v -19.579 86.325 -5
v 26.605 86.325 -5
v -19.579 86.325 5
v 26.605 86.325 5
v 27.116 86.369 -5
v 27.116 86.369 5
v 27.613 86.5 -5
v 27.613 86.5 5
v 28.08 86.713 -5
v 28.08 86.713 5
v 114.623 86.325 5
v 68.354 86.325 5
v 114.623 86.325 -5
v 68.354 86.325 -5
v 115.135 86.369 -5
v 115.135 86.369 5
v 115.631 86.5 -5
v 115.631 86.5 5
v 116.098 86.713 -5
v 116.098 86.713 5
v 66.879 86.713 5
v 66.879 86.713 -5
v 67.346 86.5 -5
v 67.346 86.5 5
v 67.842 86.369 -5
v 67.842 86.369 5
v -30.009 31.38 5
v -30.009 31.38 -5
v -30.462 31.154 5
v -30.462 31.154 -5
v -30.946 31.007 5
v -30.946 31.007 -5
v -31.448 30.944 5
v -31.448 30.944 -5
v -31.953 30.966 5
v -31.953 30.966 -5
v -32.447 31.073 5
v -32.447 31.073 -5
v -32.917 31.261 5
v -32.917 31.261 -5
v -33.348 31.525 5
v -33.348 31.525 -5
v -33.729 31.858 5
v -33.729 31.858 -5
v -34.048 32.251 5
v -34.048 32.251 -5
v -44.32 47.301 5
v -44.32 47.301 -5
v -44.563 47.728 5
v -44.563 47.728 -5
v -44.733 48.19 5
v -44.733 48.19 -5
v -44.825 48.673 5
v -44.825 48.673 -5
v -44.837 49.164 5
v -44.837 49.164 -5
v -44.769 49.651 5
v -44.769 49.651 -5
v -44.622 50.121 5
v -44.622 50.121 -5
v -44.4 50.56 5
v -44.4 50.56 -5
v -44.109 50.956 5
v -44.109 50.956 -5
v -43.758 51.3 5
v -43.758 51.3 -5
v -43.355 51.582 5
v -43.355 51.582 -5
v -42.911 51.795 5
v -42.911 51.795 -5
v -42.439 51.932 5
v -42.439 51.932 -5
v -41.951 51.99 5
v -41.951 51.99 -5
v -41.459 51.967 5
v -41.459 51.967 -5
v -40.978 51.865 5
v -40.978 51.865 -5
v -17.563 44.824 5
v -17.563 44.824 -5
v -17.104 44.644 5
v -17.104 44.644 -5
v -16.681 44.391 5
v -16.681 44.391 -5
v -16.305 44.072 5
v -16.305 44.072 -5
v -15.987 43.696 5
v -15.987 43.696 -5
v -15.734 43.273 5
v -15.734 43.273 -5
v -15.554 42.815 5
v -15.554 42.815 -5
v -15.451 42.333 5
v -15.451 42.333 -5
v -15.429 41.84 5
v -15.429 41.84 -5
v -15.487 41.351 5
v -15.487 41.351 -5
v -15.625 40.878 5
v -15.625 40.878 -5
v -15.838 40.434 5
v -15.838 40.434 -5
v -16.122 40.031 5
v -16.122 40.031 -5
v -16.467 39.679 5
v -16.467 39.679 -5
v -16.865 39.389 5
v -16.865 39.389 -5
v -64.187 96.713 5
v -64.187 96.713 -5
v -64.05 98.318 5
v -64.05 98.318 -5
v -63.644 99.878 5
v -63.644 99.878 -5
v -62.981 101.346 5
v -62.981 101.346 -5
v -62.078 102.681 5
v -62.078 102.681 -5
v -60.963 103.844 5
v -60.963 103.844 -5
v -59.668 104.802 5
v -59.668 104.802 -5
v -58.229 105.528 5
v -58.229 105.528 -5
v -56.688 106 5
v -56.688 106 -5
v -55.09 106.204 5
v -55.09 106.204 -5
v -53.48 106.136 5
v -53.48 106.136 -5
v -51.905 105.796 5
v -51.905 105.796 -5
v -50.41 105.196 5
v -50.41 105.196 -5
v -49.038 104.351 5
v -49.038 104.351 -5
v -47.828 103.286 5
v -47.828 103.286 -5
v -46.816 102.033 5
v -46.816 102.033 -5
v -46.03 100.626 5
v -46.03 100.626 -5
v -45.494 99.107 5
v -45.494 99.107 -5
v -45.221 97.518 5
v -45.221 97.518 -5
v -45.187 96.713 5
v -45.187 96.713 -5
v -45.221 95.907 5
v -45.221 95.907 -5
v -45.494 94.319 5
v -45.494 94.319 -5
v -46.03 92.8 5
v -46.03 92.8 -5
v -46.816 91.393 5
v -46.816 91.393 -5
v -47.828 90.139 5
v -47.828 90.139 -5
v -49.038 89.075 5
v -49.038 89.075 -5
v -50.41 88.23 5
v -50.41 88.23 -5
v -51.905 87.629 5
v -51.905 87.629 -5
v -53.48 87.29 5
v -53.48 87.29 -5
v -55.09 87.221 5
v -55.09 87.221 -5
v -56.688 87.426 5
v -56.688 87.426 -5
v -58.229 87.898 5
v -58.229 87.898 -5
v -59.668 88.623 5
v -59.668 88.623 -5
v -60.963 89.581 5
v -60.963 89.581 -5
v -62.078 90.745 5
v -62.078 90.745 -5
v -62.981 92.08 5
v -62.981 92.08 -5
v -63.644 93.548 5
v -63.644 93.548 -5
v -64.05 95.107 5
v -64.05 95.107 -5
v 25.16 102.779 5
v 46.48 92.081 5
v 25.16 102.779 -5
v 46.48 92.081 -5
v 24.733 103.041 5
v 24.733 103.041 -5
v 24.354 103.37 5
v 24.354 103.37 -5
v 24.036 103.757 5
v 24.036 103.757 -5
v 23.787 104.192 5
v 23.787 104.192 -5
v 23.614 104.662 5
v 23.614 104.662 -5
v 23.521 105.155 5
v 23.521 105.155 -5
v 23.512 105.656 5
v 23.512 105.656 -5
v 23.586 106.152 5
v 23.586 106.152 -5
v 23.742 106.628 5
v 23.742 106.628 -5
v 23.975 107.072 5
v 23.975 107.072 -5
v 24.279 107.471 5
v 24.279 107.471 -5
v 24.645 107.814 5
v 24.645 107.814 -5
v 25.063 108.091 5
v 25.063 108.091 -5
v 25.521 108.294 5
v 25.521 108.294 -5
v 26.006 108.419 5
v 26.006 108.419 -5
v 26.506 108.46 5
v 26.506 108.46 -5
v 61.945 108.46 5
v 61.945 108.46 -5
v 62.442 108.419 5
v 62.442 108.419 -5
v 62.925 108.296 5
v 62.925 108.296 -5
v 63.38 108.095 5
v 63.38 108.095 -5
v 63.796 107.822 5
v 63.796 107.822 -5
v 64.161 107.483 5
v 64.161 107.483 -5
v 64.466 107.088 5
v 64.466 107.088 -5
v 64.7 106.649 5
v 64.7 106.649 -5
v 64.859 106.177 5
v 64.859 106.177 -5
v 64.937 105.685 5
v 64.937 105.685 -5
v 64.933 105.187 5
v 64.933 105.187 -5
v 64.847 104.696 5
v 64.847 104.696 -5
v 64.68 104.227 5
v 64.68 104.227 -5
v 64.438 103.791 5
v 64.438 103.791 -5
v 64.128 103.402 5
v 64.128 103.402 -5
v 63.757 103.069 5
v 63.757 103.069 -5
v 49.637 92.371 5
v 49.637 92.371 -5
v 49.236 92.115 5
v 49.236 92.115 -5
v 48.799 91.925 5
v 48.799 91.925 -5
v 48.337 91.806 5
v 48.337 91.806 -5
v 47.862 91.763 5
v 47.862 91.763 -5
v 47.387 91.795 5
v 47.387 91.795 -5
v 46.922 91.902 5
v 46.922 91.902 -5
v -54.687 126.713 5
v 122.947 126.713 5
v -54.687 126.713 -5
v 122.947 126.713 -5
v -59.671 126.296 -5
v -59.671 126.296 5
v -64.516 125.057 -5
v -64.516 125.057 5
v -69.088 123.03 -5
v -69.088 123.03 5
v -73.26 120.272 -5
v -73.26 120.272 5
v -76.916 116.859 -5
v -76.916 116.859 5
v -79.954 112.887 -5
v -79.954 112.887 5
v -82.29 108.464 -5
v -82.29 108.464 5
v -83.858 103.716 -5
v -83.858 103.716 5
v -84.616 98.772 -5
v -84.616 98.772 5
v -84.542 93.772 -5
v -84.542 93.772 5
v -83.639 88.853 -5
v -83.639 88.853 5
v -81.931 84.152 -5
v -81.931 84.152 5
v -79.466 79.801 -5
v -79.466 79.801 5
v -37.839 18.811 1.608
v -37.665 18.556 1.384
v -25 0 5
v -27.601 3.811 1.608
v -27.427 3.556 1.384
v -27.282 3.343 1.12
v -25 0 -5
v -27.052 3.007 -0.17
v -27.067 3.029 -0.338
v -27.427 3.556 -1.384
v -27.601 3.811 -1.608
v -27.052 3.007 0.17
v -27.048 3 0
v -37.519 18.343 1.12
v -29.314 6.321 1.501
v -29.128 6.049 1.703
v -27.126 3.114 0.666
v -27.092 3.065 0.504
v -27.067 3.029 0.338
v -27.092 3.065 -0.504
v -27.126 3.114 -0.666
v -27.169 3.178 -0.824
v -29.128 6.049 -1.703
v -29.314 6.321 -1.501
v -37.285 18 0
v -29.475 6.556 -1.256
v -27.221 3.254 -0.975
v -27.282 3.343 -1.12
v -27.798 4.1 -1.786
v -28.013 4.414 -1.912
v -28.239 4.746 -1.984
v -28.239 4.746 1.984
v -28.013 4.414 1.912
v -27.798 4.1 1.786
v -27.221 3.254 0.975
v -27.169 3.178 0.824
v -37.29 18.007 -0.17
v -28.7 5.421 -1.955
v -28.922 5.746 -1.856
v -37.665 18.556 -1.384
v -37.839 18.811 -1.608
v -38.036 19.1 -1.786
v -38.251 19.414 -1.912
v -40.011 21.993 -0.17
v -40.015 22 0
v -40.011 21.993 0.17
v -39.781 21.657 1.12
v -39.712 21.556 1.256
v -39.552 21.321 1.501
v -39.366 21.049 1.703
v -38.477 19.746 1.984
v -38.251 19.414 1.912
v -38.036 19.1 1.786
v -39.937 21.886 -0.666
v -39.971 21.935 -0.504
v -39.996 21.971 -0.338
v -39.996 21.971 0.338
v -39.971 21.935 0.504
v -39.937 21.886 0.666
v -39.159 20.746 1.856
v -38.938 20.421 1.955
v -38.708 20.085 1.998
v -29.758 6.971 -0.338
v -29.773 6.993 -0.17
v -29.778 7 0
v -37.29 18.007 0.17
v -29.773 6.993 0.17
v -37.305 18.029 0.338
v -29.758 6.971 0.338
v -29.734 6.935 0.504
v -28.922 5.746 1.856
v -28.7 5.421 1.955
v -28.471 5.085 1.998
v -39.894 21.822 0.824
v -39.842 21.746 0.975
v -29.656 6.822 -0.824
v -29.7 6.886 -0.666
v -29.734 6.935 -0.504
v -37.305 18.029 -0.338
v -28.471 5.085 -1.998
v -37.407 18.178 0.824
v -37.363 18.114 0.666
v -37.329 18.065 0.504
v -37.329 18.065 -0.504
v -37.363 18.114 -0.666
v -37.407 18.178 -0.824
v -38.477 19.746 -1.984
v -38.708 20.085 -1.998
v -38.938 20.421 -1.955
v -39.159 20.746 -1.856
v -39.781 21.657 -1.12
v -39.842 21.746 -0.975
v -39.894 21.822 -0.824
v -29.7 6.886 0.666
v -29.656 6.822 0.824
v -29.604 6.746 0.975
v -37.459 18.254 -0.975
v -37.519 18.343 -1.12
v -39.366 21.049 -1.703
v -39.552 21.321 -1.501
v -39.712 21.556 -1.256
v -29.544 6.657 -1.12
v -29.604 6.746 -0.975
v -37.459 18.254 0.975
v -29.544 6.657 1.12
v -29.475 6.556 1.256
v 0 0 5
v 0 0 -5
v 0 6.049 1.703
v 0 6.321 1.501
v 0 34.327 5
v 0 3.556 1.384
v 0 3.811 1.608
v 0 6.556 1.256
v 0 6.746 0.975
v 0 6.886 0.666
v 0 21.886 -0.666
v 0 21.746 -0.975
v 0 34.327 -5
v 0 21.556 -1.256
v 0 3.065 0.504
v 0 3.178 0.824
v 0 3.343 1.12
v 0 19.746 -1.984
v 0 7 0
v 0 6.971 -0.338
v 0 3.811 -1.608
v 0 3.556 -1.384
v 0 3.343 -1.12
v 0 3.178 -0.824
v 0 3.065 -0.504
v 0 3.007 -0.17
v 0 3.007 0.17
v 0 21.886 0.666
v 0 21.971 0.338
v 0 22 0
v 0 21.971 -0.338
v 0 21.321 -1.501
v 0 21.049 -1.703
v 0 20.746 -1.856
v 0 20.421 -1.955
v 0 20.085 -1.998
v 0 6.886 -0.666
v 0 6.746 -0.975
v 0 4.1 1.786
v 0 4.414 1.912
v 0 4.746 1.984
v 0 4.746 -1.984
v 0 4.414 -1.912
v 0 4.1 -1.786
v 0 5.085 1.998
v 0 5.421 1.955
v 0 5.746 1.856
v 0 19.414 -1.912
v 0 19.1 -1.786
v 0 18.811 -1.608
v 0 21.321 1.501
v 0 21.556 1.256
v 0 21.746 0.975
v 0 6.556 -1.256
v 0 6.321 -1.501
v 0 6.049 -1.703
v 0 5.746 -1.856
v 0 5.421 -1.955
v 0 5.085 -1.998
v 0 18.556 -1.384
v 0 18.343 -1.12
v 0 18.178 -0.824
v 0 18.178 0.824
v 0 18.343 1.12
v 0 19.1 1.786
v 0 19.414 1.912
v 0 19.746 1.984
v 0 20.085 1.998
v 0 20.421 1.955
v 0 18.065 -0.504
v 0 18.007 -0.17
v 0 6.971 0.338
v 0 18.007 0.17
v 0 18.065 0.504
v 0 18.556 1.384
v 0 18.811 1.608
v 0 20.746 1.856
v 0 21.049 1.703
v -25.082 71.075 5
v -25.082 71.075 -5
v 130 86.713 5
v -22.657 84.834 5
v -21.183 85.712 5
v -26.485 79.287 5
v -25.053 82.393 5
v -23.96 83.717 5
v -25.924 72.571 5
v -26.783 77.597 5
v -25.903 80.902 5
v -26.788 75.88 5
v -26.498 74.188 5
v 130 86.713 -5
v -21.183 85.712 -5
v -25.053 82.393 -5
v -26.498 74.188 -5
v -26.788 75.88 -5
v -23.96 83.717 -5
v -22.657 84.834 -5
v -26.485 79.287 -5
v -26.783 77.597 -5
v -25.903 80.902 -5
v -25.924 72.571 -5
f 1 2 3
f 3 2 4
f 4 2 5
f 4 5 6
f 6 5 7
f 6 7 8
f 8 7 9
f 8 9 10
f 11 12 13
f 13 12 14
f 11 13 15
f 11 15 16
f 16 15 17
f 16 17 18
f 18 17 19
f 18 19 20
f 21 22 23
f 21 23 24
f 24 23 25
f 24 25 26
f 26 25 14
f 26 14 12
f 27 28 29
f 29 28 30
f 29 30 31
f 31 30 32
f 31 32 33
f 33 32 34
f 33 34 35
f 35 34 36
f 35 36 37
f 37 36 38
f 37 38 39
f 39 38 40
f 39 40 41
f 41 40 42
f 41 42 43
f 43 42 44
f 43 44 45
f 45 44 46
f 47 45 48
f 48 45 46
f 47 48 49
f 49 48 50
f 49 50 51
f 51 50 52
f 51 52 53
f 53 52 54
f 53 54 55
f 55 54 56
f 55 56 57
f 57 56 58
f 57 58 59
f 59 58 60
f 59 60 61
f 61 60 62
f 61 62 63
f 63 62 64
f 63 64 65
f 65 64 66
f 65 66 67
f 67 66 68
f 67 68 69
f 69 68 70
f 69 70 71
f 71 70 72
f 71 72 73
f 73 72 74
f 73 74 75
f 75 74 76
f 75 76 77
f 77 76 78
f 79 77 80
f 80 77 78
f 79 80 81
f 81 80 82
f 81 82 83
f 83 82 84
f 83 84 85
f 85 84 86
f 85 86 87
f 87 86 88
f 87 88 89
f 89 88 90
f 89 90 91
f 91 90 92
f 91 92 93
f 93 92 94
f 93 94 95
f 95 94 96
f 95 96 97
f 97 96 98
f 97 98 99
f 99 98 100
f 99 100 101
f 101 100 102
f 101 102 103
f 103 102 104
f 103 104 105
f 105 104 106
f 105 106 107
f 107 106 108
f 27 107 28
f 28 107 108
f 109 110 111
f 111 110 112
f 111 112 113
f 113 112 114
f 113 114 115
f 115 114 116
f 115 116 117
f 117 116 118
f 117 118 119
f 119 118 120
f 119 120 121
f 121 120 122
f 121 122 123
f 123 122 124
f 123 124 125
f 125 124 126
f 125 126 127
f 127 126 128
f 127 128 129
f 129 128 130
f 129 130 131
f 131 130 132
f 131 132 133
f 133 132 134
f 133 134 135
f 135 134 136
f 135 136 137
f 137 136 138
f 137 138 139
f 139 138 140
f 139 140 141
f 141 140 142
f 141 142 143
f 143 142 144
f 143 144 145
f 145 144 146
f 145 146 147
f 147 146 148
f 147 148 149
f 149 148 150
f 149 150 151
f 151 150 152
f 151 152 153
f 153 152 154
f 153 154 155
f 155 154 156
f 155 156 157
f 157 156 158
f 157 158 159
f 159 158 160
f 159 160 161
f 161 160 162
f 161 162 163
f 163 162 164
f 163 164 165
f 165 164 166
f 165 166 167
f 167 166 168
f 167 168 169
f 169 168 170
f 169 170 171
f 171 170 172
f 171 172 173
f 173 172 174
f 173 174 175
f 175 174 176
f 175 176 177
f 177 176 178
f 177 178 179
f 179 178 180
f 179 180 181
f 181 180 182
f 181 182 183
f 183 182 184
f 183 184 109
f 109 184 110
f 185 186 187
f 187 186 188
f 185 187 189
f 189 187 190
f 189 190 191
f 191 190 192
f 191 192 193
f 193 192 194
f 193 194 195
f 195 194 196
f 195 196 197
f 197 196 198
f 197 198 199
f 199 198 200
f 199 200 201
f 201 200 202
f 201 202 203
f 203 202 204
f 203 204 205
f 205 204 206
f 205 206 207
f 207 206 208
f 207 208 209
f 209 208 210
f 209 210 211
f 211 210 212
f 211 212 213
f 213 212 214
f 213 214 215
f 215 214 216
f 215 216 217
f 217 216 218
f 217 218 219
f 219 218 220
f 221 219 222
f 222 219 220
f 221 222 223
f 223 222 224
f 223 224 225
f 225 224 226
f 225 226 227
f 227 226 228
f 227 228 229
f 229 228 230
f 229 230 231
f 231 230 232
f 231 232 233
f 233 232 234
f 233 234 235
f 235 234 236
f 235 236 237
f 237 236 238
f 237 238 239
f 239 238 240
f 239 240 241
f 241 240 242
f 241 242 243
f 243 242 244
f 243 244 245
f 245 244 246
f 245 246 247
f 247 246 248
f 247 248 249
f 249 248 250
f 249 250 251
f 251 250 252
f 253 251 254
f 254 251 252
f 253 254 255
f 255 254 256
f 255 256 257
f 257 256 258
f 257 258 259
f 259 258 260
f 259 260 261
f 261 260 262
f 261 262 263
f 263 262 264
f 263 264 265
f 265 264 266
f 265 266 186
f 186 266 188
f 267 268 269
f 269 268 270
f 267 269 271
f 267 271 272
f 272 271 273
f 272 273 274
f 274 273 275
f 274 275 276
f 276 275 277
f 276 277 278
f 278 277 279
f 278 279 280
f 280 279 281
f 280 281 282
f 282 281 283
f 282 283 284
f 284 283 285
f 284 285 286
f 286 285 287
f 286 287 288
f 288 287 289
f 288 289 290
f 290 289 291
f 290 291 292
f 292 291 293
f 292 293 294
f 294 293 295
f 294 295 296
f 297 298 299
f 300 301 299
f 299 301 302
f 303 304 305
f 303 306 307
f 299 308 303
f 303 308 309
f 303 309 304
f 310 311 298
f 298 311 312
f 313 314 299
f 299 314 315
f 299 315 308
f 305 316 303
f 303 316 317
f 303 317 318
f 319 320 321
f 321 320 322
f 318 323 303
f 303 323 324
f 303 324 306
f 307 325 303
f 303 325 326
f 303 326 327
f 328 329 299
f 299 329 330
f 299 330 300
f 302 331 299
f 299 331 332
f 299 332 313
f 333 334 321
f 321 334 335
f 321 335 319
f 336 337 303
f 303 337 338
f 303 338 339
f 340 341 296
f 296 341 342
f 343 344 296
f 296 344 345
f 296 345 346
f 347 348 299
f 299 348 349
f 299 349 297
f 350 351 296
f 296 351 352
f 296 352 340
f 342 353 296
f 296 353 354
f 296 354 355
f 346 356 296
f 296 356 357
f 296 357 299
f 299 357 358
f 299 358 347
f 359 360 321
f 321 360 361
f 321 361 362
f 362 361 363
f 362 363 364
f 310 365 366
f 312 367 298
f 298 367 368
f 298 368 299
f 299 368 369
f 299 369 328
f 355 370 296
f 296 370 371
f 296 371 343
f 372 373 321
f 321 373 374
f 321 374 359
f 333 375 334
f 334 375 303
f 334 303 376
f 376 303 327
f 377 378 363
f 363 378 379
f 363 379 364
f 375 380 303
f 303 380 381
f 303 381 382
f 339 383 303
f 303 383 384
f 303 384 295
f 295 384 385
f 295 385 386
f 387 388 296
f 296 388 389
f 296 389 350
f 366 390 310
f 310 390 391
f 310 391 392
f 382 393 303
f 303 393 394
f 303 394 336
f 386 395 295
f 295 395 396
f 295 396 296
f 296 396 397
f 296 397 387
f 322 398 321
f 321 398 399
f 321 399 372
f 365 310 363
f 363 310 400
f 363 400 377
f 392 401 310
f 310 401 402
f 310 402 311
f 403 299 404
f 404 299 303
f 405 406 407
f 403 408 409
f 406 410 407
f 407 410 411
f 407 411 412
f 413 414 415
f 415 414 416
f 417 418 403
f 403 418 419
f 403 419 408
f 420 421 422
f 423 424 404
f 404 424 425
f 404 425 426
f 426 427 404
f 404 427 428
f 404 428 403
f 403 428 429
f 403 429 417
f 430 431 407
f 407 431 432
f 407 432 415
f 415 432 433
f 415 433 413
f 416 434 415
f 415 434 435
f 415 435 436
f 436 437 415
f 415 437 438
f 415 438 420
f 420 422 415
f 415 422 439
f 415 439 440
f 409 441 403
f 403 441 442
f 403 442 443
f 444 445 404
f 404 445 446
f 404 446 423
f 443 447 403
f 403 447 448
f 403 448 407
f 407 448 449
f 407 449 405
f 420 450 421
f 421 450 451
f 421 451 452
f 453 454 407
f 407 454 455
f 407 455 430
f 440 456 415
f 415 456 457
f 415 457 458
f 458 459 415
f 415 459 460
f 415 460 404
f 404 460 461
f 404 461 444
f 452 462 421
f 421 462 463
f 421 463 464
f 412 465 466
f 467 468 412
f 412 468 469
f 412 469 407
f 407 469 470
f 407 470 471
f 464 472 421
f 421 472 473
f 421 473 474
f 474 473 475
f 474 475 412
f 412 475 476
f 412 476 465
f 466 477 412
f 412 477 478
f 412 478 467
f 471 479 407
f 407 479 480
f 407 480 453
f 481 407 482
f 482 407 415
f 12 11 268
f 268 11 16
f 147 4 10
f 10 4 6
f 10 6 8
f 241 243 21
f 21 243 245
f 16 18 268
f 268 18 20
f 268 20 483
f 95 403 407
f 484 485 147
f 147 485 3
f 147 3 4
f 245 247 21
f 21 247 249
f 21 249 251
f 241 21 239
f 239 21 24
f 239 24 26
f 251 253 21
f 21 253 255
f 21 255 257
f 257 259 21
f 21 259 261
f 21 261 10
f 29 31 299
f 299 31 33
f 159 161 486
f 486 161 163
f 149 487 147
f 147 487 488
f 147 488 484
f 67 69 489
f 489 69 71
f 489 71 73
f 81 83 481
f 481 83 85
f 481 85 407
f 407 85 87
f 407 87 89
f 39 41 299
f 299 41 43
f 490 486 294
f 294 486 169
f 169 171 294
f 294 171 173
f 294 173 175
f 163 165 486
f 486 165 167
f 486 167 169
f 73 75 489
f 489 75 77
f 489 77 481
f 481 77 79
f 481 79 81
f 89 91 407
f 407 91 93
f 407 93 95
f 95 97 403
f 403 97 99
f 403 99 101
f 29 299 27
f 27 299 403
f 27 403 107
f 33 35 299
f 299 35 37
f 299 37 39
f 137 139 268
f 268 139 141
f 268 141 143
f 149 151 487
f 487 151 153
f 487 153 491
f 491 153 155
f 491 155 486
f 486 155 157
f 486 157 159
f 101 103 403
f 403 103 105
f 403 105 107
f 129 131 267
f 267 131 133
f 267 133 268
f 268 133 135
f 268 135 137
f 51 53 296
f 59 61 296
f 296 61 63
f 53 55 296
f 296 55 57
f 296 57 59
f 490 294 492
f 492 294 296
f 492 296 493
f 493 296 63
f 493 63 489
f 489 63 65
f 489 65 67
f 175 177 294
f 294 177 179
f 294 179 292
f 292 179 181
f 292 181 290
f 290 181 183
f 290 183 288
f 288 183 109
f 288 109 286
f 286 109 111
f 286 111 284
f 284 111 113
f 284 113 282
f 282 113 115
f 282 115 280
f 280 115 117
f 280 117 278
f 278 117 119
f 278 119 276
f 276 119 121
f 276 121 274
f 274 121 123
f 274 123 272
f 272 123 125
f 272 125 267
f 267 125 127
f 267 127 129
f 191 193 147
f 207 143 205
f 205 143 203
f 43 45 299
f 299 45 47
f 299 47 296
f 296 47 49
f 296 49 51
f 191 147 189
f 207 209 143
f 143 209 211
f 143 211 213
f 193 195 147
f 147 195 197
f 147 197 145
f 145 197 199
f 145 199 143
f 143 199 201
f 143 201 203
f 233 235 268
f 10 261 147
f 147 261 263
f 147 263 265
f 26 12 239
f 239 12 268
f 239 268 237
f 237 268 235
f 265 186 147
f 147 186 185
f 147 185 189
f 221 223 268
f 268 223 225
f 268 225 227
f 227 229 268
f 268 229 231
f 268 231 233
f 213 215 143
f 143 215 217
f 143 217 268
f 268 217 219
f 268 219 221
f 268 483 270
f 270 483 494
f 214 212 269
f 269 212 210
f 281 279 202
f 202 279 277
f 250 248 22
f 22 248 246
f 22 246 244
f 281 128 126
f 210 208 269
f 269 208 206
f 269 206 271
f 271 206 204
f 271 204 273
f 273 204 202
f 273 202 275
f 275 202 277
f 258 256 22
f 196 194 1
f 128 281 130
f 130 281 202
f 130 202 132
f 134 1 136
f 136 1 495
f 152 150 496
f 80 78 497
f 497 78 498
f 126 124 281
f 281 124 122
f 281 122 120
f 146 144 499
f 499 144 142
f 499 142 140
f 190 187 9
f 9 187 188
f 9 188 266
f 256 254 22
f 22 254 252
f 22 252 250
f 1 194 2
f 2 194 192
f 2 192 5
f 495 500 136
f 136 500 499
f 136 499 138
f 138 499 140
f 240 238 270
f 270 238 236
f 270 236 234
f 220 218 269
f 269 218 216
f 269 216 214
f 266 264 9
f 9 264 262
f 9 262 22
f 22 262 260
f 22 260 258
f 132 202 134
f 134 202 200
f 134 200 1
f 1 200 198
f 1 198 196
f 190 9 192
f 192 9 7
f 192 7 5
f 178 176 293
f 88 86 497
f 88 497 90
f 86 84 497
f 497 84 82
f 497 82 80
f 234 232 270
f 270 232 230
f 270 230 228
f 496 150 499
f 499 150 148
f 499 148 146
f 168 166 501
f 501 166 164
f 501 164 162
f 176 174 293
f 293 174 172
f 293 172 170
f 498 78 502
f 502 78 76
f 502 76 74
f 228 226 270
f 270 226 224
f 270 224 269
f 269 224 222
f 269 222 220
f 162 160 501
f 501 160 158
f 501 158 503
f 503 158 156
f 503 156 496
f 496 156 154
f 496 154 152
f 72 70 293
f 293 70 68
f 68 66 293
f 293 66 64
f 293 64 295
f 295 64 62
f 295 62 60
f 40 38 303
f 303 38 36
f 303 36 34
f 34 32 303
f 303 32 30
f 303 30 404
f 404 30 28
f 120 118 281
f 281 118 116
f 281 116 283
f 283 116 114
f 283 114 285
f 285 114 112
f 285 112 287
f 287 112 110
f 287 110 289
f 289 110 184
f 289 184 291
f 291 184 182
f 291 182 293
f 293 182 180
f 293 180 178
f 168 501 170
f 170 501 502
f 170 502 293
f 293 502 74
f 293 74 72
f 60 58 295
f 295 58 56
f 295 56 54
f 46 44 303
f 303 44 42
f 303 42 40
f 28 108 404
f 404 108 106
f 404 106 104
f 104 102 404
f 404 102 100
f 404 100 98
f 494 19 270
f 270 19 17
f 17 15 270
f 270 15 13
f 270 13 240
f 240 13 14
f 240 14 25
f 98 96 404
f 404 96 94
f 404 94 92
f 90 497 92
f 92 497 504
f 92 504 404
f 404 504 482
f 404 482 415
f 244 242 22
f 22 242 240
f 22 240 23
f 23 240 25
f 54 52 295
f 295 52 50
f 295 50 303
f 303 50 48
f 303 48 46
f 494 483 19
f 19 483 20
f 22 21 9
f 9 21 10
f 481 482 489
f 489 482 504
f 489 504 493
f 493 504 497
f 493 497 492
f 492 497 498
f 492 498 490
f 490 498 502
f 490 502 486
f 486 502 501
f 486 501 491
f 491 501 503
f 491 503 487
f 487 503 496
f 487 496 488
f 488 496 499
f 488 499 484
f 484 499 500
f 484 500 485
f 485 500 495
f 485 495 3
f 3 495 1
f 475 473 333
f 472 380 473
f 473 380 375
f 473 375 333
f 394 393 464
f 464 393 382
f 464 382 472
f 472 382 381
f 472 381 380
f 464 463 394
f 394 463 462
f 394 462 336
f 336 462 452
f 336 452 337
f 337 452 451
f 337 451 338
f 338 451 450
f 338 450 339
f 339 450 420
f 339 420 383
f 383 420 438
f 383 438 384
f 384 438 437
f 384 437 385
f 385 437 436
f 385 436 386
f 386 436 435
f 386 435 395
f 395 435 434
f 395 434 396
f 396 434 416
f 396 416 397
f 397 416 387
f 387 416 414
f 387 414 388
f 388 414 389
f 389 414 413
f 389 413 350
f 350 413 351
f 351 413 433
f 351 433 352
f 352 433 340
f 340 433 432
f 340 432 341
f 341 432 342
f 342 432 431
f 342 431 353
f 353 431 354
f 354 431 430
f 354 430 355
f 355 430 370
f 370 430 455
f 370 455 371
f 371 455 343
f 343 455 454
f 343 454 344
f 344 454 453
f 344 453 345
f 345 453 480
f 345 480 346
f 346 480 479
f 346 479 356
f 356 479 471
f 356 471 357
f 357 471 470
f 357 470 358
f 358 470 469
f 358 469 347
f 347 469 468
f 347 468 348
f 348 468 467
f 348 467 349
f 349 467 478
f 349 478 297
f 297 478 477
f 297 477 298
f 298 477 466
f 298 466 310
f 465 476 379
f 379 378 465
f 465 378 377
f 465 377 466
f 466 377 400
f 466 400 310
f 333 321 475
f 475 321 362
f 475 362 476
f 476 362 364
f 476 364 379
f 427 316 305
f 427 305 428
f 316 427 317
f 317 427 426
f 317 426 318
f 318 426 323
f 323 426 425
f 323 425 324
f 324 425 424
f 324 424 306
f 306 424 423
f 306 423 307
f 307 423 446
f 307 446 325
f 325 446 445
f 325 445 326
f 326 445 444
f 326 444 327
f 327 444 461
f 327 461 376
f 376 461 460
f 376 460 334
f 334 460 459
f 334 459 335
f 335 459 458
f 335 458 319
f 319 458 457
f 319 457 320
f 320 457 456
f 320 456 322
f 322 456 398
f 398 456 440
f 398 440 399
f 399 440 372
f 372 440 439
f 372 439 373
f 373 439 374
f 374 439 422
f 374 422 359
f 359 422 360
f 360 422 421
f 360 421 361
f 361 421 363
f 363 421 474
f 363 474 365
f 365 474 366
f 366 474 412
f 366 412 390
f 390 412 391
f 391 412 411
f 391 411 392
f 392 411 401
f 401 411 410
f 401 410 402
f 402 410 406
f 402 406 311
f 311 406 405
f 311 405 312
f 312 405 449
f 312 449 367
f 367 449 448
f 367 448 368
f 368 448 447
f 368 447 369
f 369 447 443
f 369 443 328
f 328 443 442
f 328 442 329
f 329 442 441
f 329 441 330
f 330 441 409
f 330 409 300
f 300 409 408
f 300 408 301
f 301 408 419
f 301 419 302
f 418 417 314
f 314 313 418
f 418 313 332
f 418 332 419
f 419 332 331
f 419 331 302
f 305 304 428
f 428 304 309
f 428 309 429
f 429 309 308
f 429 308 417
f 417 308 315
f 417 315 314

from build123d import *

# Parameters (mm, degrees)
SKETCH1_R           = 9.5
BOSS_EXTRUDE2_DEPTH = 5
SKETCH2_R           = 2
CUT_EXTRUDE1_DEPTH  = 43.5


with BuildPart() as part:
    # Sketch1 → Boss-Extrude2 (new, symmetric)
    with BuildSketch(Plane.XY):
        with BuildLine():
            Line((-25, 0), (0, 0))
            Line((0, 0), (0, 34.32666264))
            Line((0, 34.32666264), (-25.081844034, 71.075487971))
            ThreePointArc((-25.081844034, 71.075487971), (-26.228666022, 80.106897872), (-19.579322507, 86.325241404))
            Line((-19.579322507, 86.325241404), (26.604717255, 86.325241404))
            ThreePointArc((26.604717255, 86.325241404), (27.367190328, 86.423753026), (28.079588429, 86.712818196))
            Line((28.079588429, 86.712818196), (66.87872037, 86.712818196))
            ThreePointArc((66.87872037, 86.712818196), (67.591118471, 86.423753026), (68.353591544, 86.325241404))
            Line((68.353591544, 86.325241404), (114.623497212, 86.325241404))
            ThreePointArc((114.623497212, 86.325241404), (115.385970286, 86.423753026), (116.098368387, 86.712818196))
            Line((116.098368387, 86.712818196), (130, 86.712818196))
            Line((130, 86.712818196), (122.946920772, 126.712818196))
            Line((122.946920772, 126.712818196), (-54.687026413, 126.712818196))
            ThreePointArc((-54.687026413, 126.712818196), (-81.213991187, 110.724247098), (-79.465738474, 79.800827522))
            Line((-79.465738474, 79.800827522), (-25, 0))
        make_face()
        with BuildLine():
            Line((-34.048206361, 32.250592263), (-44.320136127, 47.300576318))
            ThreePointArc((-44.320136127, 47.300576318), (-44.262816837, 50.76404185), (-40.978396488, 51.864706177))
            Line((-40.978396488, 51.864706177), (-17.56266475, 44.823773781))
            ThreePointArc((-17.56266475, 44.823773781), (-15.450916476, 42.332556513), (-16.865487004, 39.388981395))
            Line((-16.865487004, 39.388981395), (-30.009288975, 31.379929737))
            ThreePointArc((-30.009288975, 31.379929737), (-32.202518151, 31.009156908), (-34.048206361, 32.250592263))
        make_face(mode=Mode.SUBTRACT)
        with Locations((-54.687026413, 96.712818196)):
            Circle(SKETCH1_R, mode=Mode.SUBTRACT)
        with BuildLine():
            ThreePointArc((25.16023195, 102.779114733), (23.586428727, 106.151820228), (26.505685136, 108.460486719))
            Line((26.505685136, 108.460486719), (61.945496305, 108.460486719))
            ThreePointArc((61.945496305, 108.460486719), (64.78922159, 106.416115571), (63.757193592, 103.069304387))
            Line((63.757193592, 103.069304387), (49.637443167, 92.371369228))
            ThreePointArc((49.637443167, 92.371369228), (48.10033357, 91.775144389), (46.480292695, 92.081179573))
            Line((46.480292695, 92.081179573), (25.16023195, 102.779114733))
        make_face(mode=Mode.SUBTRACT)
    extrude(amount=BOSS_EXTRUDE2_DEPTH, both=True)

    # Sketch2 → Cut-Extrude1 (cut, symmetric)
    with BuildSketch(Plane(origin=(0, 0, 0), x_dir=(0, 0, -1), z_dir=(1, 0, 0))):
        with Locations(Location((0, 5, 0), (0, 0, 90))):
            Circle(SKETCH2_R)
        with Locations(Location((0, 20, 0), (0, 0, 90))):
            Circle(SKETCH2_R)
    extrude(amount=CUT_EXTRUDE1_DEPTH, both=True, mode=Mode.SUBTRACT)


solid = part.part
